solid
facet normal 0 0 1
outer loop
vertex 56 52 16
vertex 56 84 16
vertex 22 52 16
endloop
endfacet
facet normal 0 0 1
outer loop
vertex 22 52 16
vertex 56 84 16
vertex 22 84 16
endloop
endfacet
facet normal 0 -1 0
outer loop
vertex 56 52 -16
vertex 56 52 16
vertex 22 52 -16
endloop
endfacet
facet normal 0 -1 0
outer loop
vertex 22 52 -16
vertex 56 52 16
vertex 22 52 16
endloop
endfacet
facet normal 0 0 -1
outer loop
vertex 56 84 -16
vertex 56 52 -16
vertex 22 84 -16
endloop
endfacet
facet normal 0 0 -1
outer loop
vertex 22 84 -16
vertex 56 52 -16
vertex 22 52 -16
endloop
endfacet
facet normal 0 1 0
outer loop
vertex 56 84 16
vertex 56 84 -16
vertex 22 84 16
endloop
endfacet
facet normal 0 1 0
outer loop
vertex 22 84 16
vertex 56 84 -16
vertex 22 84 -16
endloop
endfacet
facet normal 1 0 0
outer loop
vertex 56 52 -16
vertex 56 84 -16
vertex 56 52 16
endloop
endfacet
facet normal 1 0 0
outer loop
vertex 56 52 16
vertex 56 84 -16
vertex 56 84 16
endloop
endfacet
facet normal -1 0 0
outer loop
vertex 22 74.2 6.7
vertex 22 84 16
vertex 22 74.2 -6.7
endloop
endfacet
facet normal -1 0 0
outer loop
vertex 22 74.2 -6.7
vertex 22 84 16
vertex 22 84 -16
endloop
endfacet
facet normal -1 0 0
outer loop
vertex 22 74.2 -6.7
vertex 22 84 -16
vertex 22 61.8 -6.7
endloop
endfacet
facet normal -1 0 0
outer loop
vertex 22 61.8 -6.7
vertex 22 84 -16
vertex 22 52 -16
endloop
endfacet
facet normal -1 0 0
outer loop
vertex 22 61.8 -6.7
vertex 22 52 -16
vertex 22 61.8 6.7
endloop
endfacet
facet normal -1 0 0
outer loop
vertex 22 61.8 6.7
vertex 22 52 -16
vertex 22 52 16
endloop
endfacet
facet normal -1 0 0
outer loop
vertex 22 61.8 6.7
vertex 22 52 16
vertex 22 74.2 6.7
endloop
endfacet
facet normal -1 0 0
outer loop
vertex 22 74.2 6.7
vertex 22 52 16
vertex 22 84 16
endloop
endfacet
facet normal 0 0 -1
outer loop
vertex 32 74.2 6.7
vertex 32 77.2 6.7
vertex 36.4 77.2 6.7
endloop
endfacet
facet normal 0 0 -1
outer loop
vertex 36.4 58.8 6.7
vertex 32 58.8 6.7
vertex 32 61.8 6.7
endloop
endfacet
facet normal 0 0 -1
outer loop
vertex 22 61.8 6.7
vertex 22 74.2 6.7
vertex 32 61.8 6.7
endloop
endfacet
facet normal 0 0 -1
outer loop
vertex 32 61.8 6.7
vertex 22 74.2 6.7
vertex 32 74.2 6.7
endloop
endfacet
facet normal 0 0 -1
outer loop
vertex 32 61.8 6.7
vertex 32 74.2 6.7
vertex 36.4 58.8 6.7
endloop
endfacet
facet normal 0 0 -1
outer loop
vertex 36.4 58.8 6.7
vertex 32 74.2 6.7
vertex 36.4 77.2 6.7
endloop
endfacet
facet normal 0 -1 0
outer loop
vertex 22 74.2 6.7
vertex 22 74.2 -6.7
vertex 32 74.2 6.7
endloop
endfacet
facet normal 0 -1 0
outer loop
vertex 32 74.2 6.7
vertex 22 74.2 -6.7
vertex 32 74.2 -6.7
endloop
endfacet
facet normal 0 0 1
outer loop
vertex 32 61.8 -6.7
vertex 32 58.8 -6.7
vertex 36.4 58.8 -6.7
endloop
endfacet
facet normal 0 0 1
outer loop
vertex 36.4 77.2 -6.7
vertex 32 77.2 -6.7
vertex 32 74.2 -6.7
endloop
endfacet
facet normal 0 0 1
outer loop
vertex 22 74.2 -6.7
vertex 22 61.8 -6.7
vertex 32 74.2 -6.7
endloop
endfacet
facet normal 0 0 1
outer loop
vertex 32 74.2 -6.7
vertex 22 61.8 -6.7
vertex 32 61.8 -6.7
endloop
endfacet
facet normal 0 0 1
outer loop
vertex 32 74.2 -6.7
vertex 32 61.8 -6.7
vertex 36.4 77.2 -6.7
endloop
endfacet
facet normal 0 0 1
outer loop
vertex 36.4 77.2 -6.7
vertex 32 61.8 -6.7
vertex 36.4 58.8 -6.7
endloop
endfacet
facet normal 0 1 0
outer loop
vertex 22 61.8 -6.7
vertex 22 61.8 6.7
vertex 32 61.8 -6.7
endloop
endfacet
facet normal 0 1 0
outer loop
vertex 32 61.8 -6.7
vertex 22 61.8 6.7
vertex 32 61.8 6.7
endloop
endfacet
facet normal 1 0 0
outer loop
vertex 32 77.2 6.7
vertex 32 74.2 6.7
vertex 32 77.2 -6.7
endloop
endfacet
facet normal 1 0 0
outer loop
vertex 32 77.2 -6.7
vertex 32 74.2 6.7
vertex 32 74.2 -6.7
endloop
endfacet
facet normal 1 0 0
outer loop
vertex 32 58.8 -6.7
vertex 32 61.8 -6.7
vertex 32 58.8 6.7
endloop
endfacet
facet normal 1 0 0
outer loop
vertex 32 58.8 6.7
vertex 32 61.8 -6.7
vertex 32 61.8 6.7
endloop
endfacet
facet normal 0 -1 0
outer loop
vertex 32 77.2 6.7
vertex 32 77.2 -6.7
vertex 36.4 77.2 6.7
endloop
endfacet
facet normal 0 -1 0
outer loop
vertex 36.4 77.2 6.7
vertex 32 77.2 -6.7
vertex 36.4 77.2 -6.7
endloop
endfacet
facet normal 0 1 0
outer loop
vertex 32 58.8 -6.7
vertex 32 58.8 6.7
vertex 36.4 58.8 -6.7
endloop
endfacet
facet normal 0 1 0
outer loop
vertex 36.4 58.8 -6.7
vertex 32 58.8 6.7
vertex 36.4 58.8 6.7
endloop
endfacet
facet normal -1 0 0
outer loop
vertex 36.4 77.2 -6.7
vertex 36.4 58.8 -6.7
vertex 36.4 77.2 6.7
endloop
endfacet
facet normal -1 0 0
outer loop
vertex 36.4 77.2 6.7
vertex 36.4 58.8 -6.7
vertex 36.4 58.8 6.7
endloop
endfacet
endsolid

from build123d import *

# Parameters (mm, degrees)
BOSS_EXTRUDE1_START = 39
SKETCH1_W           = 32
SKETCH1_H           = 32
BOSS_EXTRUDE1_DEPTH = 17
CUT_EXTRUDE1_START  = 27
SKETCH2_W           = 13.4
SKETCH2_H           = 12.4
CUT_EXTRUDE1_DEPTH  = 5
CUT_EXTRUDE2_START  = 34.2
SKETCH3_W           = 13.4
SKETCH3_H           = 18.4
CUT_EXTRUDE2_DEPTH  = 2.2


with BuildPart() as part:
    # Sketch1 → Boss-Extrude1 (new, symmetric)
    with BuildSketch(Plane(origin=(0, 0, 0), x_dir=(0, 0, -1), z_dir=(1, 0, 0)).offset(BOSS_EXTRUDE1_START)):
        with Locations((0, 68)):
            Rectangle(SKETCH1_W, SKETCH1_H)
    extrude(amount=BOSS_EXTRUDE1_DEPTH, both=True)

    # Sketch2 → Cut-Extrude1 (cut, symmetric)
    with BuildSketch(Plane(origin=(0, 0, 0), x_dir=(0, 0, -1), z_dir=(1, 0, 0)).offset(CUT_EXTRUDE1_START)):
        with Locations((0, 68)):
            Rectangle(SKETCH2_W, SKETCH2_H)
    extrude(amount=CUT_EXTRUDE1_DEPTH, both=True, mode=Mode.SUBTRACT)

    # Sketch3 → Cut-Extrude2 (cut, symmetric)
    with BuildSketch(Plane(origin=(0, 0, 0), x_dir=(0, 0, -1), z_dir=(1, 0, 0)).offset(CUT_EXTRUDE2_START)):
        with Locations((0, 68)):
            Rectangle(SKETCH3_W, SKETCH3_H)
    extrude(amount=CUT_EXTRUDE2_DEPTH, both=True, mode=Mode.SUBTRACT)


solid = part.part
